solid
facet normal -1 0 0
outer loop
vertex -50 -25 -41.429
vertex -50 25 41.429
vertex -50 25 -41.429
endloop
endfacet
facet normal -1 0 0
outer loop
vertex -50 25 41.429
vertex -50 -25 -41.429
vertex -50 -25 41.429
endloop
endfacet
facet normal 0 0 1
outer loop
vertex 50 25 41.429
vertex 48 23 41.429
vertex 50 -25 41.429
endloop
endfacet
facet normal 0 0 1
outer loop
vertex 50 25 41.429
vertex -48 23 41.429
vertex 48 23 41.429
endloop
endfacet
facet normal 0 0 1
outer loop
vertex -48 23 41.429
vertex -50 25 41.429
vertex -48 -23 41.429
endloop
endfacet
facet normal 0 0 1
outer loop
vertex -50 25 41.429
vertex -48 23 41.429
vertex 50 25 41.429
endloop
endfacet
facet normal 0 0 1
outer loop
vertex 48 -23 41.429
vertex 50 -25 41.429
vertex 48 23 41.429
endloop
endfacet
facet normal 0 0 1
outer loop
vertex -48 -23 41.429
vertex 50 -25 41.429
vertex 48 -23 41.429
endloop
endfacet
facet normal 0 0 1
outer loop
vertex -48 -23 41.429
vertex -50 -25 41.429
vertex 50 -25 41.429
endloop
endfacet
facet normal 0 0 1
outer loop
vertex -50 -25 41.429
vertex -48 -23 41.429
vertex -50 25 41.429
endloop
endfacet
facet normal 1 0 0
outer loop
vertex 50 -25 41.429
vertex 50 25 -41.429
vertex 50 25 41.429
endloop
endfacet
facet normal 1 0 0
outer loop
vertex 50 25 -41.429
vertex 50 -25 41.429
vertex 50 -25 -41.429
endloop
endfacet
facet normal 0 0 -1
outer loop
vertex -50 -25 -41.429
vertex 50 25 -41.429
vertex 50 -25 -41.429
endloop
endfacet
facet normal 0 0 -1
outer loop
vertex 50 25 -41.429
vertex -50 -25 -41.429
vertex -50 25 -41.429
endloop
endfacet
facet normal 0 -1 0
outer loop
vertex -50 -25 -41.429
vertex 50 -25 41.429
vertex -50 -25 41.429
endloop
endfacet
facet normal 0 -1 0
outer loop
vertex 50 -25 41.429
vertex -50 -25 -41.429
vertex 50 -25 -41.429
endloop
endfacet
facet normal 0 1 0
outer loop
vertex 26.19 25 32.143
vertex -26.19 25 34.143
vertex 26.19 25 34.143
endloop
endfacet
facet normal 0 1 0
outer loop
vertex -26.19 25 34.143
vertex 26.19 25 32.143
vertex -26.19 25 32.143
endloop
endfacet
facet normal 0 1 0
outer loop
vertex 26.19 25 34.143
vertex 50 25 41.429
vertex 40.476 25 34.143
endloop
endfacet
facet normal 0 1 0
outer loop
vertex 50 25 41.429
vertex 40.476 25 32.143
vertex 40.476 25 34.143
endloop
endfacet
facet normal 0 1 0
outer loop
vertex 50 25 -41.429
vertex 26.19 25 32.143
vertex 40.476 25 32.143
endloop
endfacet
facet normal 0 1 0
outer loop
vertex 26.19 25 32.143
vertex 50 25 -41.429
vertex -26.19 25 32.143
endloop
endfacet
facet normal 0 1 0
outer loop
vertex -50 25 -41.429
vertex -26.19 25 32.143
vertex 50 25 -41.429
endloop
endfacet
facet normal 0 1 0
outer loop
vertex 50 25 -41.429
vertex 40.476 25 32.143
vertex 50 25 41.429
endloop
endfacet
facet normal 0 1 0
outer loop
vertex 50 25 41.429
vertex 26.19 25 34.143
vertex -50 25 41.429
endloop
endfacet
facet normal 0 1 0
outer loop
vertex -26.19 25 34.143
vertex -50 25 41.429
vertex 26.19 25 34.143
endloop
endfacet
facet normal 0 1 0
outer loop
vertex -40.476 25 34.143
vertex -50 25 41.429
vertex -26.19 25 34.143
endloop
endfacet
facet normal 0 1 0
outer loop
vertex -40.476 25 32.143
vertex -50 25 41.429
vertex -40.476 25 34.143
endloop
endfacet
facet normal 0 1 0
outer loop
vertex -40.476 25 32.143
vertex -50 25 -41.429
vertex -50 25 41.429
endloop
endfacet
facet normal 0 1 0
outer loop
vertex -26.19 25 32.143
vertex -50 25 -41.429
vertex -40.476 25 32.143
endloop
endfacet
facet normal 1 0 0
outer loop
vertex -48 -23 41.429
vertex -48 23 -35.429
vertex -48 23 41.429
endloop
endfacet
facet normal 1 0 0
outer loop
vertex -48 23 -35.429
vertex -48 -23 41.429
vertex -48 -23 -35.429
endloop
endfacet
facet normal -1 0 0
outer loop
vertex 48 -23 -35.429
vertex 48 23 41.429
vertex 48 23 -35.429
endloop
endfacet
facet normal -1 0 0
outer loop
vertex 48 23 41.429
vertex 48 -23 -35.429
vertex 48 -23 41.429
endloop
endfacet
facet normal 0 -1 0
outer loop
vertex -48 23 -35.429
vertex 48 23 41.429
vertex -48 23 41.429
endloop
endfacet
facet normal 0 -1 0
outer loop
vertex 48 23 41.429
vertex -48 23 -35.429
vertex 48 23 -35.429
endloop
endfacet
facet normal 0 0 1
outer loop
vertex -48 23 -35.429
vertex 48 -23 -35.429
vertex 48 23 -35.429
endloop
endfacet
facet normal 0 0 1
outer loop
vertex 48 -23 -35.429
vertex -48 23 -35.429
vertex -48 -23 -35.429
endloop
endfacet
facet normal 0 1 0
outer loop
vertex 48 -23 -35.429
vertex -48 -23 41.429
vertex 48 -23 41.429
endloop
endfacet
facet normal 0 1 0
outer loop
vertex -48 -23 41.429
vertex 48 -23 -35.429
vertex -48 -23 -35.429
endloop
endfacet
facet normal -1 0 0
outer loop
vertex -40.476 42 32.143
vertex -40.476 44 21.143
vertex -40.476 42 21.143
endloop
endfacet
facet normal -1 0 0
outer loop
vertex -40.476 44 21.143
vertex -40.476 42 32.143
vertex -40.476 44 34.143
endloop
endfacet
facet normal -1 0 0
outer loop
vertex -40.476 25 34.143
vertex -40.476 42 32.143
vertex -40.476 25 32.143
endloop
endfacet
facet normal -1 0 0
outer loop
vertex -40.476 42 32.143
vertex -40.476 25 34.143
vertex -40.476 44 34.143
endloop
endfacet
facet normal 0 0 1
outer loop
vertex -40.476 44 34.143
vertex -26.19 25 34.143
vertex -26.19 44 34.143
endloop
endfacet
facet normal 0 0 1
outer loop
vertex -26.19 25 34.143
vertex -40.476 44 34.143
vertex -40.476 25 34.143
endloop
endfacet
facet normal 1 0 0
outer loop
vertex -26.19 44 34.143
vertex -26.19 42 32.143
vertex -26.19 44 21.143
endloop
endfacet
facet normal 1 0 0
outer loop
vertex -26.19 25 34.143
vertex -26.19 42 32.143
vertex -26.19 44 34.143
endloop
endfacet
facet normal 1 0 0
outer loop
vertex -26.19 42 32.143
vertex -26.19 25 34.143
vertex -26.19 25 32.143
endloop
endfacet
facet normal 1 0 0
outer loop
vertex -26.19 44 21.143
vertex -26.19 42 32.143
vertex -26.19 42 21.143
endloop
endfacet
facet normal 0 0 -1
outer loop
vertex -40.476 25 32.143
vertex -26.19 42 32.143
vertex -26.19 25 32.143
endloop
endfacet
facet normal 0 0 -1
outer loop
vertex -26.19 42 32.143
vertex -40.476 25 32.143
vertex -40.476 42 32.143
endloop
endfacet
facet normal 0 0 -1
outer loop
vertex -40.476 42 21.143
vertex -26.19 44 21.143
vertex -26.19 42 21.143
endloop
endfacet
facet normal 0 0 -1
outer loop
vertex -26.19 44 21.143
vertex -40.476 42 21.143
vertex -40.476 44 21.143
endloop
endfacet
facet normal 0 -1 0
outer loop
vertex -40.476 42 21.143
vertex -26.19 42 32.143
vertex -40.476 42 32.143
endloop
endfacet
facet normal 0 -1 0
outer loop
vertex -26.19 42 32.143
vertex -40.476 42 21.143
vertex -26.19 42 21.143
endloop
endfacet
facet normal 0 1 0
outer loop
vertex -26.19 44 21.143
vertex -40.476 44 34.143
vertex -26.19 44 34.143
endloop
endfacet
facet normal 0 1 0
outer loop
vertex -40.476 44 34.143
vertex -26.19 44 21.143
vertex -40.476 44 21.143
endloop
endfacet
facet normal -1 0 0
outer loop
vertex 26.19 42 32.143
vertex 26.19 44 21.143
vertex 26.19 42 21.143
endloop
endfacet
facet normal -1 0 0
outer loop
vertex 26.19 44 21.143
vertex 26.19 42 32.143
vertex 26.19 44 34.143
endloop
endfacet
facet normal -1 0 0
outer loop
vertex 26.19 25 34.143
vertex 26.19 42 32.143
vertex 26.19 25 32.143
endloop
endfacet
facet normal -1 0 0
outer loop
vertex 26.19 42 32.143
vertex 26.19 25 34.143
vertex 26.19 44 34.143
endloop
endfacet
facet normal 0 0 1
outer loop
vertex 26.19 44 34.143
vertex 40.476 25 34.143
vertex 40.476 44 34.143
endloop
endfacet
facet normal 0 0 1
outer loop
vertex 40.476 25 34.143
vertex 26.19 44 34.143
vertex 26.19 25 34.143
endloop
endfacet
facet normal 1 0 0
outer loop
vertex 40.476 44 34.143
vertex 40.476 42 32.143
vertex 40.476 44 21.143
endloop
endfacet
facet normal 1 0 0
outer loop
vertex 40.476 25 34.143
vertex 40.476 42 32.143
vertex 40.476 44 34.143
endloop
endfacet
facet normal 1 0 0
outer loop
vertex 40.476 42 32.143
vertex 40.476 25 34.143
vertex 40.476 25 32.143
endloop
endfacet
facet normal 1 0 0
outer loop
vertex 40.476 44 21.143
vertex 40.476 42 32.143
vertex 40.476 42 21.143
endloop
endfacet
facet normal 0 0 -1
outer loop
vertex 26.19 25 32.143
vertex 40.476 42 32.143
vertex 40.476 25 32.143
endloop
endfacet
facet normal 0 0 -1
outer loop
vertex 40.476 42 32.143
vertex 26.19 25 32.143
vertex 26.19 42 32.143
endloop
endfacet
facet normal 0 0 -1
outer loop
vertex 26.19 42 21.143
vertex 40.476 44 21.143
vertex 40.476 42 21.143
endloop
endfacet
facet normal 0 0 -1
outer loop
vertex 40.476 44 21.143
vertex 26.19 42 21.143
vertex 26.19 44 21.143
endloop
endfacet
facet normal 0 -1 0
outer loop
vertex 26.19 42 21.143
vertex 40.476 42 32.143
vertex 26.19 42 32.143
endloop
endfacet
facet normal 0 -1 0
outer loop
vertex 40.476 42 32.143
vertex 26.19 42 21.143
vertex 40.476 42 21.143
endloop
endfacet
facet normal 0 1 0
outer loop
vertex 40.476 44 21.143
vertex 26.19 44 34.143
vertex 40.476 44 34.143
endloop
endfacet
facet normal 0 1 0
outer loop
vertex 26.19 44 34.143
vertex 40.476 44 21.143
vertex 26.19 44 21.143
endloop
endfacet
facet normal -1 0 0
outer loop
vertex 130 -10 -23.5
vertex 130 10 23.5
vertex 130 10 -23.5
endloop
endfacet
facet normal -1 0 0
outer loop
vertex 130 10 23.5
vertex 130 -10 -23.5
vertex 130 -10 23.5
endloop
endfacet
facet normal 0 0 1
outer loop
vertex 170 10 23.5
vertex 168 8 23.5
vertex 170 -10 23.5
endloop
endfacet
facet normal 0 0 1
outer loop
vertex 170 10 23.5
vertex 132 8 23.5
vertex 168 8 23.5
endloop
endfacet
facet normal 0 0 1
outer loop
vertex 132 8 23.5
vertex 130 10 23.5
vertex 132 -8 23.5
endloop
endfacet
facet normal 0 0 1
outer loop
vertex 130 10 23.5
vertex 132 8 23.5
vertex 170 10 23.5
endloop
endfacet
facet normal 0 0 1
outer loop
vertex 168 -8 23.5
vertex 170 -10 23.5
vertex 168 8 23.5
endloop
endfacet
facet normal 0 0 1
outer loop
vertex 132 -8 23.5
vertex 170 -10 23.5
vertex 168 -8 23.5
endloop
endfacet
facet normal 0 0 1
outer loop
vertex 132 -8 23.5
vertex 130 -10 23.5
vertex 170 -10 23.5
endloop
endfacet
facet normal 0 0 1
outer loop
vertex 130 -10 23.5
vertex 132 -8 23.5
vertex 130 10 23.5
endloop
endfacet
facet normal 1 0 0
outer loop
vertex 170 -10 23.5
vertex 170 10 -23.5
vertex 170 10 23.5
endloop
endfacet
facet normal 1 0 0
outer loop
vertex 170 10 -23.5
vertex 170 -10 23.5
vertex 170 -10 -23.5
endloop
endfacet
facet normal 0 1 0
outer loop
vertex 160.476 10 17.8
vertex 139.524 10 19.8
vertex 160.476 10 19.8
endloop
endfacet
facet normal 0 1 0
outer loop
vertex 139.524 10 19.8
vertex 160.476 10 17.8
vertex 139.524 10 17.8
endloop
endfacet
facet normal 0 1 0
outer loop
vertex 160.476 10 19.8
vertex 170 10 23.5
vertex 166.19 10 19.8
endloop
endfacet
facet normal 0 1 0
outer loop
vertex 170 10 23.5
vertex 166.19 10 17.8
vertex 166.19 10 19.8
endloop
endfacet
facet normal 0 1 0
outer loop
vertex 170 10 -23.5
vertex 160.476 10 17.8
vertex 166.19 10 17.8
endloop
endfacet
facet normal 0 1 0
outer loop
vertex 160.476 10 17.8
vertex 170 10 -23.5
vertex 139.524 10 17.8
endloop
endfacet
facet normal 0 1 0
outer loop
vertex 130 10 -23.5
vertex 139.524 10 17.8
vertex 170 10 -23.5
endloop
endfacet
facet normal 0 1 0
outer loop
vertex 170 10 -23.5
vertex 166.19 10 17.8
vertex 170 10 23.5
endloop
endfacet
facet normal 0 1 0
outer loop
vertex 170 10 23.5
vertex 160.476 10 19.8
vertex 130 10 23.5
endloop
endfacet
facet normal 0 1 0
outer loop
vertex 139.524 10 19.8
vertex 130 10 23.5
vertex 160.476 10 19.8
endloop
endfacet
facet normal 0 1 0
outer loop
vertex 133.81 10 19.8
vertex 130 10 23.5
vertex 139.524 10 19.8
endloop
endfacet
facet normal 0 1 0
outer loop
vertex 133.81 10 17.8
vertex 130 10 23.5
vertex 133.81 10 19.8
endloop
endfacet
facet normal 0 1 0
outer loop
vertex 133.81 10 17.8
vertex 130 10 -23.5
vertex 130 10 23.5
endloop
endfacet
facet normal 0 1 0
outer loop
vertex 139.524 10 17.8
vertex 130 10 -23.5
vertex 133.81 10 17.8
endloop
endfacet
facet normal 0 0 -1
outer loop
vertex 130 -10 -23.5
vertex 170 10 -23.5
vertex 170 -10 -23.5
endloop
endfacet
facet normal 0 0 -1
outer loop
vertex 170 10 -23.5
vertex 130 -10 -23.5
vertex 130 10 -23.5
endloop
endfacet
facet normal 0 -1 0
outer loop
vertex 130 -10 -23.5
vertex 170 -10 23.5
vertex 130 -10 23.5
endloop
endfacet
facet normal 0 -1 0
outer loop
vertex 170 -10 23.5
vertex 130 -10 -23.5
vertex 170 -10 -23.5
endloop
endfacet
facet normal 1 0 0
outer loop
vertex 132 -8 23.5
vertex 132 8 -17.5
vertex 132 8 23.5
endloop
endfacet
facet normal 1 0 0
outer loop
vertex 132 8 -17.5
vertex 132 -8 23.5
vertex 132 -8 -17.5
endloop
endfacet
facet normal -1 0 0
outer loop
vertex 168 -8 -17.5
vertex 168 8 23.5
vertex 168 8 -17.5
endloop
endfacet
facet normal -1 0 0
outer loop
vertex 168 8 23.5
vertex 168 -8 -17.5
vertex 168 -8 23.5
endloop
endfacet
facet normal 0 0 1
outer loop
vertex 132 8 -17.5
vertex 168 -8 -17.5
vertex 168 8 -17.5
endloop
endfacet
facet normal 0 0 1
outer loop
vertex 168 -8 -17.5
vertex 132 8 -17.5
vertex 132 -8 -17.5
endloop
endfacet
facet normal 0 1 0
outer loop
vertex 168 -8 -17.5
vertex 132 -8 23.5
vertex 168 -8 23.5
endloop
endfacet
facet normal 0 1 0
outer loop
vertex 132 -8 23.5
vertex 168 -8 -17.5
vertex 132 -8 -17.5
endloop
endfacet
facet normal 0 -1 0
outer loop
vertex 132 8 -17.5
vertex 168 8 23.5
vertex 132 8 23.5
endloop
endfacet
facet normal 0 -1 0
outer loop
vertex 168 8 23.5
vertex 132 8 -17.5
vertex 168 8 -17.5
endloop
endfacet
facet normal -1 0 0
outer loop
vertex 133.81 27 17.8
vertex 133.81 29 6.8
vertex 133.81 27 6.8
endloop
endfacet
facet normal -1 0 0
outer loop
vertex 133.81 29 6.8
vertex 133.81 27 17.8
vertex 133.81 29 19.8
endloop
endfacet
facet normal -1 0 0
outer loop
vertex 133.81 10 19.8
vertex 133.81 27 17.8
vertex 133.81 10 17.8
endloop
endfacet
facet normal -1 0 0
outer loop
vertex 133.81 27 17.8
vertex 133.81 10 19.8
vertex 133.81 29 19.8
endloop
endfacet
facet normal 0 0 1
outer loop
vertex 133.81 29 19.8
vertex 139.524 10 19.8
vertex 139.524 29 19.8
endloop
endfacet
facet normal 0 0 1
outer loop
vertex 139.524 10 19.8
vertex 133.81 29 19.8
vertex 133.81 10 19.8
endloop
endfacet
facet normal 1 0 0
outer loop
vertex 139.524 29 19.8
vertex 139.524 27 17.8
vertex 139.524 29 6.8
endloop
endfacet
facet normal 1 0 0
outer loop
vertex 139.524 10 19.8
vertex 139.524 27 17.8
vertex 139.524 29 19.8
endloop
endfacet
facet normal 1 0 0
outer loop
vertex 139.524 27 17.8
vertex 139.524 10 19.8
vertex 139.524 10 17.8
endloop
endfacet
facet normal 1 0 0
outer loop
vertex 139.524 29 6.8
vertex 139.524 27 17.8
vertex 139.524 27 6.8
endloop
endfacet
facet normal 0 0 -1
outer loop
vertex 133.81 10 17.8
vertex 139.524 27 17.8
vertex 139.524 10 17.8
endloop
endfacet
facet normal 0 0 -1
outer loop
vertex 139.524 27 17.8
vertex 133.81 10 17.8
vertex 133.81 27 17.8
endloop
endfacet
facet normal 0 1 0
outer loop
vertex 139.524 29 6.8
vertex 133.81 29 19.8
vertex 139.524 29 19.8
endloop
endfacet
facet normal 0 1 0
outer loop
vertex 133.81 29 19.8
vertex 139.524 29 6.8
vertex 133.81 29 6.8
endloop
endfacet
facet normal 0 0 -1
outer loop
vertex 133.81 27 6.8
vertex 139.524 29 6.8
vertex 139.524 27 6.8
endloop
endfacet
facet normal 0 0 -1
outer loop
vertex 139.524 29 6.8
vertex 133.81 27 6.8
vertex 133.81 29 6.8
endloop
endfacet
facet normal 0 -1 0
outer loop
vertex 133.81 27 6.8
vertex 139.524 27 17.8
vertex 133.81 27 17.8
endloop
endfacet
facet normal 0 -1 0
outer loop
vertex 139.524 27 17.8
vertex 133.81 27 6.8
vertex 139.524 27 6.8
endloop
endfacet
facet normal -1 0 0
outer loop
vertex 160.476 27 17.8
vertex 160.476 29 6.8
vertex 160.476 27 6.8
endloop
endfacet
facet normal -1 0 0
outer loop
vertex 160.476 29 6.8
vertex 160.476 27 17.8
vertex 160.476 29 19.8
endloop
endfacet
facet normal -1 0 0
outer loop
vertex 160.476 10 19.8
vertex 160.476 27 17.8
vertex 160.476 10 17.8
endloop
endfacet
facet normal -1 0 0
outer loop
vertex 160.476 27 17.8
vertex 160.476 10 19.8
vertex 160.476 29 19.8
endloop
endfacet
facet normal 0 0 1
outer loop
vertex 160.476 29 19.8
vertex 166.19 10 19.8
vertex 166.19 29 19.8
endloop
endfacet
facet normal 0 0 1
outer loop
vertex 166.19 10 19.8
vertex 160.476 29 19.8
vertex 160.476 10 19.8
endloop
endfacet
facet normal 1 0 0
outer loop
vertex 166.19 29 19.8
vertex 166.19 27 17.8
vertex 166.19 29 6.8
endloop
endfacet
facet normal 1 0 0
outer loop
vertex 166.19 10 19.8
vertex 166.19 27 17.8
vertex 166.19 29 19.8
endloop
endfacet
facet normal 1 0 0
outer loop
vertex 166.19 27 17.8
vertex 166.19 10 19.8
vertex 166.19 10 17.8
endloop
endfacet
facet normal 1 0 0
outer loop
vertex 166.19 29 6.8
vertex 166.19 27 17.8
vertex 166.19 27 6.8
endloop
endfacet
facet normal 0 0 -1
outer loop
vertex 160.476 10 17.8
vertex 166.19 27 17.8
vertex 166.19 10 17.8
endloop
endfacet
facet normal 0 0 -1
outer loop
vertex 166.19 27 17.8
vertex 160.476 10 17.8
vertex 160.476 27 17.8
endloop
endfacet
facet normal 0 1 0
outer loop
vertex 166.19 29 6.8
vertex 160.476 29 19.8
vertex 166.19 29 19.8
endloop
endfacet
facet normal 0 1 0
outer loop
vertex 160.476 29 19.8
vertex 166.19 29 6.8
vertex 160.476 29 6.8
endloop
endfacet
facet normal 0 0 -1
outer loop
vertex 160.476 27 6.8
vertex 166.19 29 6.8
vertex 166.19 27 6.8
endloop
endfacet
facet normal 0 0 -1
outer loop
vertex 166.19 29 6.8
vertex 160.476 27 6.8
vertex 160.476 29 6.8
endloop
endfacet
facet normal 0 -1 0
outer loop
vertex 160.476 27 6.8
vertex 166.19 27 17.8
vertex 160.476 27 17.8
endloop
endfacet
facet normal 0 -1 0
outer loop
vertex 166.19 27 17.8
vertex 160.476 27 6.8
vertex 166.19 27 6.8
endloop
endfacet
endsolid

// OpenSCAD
DEFAULT_THICKNESS = 2;

module MonitorHook(length, thickness, monitorWidth = 18, lipHeight = 13)
{
	translate([0, monitorWidth/2, 0])
	cube([length, monitorWidth, thickness], center = true);

	translate([0, monitorWidth, (thickness-lipHeight)/2])
	cube([length, thickness, lipHeight], center = true);
}

module BackOfMonitorBox(length, width, depth, thickness)
{
	difference()
	{
		cube([length, width, depth], center = true);

		translate([0, 0, thickness*2])
		cube([length-thickness*2, width-thickness*2, depth-thickness*2], center = true);
	}

	translate([-length/3, width/2, depth*2/5])
	MonitorHook(length = length/7, thickness = thickness);

	translate([length/3, width/2, depth*2/5])
	MonitorHook(length = length/7, thickness = thickness);
}



module PencilBox(length = 100, width = 50, depth = 145*4/7, thickness = DEFAULT_THICKNESS)
{
    BackOfMonitorBox(length = length, width = width, depth = depth, thickness = thickness);
}

module CottonBudHolder(length = 40, width = 20, depth = 47, thickness = DEFAULT_THICKNESS)
{
    BackOfMonitorBox(length = length, width = width, depth = depth, thickness = thickness);
}



PencilBox();

translate([150, 0, 0])
CottonBudHolder();
